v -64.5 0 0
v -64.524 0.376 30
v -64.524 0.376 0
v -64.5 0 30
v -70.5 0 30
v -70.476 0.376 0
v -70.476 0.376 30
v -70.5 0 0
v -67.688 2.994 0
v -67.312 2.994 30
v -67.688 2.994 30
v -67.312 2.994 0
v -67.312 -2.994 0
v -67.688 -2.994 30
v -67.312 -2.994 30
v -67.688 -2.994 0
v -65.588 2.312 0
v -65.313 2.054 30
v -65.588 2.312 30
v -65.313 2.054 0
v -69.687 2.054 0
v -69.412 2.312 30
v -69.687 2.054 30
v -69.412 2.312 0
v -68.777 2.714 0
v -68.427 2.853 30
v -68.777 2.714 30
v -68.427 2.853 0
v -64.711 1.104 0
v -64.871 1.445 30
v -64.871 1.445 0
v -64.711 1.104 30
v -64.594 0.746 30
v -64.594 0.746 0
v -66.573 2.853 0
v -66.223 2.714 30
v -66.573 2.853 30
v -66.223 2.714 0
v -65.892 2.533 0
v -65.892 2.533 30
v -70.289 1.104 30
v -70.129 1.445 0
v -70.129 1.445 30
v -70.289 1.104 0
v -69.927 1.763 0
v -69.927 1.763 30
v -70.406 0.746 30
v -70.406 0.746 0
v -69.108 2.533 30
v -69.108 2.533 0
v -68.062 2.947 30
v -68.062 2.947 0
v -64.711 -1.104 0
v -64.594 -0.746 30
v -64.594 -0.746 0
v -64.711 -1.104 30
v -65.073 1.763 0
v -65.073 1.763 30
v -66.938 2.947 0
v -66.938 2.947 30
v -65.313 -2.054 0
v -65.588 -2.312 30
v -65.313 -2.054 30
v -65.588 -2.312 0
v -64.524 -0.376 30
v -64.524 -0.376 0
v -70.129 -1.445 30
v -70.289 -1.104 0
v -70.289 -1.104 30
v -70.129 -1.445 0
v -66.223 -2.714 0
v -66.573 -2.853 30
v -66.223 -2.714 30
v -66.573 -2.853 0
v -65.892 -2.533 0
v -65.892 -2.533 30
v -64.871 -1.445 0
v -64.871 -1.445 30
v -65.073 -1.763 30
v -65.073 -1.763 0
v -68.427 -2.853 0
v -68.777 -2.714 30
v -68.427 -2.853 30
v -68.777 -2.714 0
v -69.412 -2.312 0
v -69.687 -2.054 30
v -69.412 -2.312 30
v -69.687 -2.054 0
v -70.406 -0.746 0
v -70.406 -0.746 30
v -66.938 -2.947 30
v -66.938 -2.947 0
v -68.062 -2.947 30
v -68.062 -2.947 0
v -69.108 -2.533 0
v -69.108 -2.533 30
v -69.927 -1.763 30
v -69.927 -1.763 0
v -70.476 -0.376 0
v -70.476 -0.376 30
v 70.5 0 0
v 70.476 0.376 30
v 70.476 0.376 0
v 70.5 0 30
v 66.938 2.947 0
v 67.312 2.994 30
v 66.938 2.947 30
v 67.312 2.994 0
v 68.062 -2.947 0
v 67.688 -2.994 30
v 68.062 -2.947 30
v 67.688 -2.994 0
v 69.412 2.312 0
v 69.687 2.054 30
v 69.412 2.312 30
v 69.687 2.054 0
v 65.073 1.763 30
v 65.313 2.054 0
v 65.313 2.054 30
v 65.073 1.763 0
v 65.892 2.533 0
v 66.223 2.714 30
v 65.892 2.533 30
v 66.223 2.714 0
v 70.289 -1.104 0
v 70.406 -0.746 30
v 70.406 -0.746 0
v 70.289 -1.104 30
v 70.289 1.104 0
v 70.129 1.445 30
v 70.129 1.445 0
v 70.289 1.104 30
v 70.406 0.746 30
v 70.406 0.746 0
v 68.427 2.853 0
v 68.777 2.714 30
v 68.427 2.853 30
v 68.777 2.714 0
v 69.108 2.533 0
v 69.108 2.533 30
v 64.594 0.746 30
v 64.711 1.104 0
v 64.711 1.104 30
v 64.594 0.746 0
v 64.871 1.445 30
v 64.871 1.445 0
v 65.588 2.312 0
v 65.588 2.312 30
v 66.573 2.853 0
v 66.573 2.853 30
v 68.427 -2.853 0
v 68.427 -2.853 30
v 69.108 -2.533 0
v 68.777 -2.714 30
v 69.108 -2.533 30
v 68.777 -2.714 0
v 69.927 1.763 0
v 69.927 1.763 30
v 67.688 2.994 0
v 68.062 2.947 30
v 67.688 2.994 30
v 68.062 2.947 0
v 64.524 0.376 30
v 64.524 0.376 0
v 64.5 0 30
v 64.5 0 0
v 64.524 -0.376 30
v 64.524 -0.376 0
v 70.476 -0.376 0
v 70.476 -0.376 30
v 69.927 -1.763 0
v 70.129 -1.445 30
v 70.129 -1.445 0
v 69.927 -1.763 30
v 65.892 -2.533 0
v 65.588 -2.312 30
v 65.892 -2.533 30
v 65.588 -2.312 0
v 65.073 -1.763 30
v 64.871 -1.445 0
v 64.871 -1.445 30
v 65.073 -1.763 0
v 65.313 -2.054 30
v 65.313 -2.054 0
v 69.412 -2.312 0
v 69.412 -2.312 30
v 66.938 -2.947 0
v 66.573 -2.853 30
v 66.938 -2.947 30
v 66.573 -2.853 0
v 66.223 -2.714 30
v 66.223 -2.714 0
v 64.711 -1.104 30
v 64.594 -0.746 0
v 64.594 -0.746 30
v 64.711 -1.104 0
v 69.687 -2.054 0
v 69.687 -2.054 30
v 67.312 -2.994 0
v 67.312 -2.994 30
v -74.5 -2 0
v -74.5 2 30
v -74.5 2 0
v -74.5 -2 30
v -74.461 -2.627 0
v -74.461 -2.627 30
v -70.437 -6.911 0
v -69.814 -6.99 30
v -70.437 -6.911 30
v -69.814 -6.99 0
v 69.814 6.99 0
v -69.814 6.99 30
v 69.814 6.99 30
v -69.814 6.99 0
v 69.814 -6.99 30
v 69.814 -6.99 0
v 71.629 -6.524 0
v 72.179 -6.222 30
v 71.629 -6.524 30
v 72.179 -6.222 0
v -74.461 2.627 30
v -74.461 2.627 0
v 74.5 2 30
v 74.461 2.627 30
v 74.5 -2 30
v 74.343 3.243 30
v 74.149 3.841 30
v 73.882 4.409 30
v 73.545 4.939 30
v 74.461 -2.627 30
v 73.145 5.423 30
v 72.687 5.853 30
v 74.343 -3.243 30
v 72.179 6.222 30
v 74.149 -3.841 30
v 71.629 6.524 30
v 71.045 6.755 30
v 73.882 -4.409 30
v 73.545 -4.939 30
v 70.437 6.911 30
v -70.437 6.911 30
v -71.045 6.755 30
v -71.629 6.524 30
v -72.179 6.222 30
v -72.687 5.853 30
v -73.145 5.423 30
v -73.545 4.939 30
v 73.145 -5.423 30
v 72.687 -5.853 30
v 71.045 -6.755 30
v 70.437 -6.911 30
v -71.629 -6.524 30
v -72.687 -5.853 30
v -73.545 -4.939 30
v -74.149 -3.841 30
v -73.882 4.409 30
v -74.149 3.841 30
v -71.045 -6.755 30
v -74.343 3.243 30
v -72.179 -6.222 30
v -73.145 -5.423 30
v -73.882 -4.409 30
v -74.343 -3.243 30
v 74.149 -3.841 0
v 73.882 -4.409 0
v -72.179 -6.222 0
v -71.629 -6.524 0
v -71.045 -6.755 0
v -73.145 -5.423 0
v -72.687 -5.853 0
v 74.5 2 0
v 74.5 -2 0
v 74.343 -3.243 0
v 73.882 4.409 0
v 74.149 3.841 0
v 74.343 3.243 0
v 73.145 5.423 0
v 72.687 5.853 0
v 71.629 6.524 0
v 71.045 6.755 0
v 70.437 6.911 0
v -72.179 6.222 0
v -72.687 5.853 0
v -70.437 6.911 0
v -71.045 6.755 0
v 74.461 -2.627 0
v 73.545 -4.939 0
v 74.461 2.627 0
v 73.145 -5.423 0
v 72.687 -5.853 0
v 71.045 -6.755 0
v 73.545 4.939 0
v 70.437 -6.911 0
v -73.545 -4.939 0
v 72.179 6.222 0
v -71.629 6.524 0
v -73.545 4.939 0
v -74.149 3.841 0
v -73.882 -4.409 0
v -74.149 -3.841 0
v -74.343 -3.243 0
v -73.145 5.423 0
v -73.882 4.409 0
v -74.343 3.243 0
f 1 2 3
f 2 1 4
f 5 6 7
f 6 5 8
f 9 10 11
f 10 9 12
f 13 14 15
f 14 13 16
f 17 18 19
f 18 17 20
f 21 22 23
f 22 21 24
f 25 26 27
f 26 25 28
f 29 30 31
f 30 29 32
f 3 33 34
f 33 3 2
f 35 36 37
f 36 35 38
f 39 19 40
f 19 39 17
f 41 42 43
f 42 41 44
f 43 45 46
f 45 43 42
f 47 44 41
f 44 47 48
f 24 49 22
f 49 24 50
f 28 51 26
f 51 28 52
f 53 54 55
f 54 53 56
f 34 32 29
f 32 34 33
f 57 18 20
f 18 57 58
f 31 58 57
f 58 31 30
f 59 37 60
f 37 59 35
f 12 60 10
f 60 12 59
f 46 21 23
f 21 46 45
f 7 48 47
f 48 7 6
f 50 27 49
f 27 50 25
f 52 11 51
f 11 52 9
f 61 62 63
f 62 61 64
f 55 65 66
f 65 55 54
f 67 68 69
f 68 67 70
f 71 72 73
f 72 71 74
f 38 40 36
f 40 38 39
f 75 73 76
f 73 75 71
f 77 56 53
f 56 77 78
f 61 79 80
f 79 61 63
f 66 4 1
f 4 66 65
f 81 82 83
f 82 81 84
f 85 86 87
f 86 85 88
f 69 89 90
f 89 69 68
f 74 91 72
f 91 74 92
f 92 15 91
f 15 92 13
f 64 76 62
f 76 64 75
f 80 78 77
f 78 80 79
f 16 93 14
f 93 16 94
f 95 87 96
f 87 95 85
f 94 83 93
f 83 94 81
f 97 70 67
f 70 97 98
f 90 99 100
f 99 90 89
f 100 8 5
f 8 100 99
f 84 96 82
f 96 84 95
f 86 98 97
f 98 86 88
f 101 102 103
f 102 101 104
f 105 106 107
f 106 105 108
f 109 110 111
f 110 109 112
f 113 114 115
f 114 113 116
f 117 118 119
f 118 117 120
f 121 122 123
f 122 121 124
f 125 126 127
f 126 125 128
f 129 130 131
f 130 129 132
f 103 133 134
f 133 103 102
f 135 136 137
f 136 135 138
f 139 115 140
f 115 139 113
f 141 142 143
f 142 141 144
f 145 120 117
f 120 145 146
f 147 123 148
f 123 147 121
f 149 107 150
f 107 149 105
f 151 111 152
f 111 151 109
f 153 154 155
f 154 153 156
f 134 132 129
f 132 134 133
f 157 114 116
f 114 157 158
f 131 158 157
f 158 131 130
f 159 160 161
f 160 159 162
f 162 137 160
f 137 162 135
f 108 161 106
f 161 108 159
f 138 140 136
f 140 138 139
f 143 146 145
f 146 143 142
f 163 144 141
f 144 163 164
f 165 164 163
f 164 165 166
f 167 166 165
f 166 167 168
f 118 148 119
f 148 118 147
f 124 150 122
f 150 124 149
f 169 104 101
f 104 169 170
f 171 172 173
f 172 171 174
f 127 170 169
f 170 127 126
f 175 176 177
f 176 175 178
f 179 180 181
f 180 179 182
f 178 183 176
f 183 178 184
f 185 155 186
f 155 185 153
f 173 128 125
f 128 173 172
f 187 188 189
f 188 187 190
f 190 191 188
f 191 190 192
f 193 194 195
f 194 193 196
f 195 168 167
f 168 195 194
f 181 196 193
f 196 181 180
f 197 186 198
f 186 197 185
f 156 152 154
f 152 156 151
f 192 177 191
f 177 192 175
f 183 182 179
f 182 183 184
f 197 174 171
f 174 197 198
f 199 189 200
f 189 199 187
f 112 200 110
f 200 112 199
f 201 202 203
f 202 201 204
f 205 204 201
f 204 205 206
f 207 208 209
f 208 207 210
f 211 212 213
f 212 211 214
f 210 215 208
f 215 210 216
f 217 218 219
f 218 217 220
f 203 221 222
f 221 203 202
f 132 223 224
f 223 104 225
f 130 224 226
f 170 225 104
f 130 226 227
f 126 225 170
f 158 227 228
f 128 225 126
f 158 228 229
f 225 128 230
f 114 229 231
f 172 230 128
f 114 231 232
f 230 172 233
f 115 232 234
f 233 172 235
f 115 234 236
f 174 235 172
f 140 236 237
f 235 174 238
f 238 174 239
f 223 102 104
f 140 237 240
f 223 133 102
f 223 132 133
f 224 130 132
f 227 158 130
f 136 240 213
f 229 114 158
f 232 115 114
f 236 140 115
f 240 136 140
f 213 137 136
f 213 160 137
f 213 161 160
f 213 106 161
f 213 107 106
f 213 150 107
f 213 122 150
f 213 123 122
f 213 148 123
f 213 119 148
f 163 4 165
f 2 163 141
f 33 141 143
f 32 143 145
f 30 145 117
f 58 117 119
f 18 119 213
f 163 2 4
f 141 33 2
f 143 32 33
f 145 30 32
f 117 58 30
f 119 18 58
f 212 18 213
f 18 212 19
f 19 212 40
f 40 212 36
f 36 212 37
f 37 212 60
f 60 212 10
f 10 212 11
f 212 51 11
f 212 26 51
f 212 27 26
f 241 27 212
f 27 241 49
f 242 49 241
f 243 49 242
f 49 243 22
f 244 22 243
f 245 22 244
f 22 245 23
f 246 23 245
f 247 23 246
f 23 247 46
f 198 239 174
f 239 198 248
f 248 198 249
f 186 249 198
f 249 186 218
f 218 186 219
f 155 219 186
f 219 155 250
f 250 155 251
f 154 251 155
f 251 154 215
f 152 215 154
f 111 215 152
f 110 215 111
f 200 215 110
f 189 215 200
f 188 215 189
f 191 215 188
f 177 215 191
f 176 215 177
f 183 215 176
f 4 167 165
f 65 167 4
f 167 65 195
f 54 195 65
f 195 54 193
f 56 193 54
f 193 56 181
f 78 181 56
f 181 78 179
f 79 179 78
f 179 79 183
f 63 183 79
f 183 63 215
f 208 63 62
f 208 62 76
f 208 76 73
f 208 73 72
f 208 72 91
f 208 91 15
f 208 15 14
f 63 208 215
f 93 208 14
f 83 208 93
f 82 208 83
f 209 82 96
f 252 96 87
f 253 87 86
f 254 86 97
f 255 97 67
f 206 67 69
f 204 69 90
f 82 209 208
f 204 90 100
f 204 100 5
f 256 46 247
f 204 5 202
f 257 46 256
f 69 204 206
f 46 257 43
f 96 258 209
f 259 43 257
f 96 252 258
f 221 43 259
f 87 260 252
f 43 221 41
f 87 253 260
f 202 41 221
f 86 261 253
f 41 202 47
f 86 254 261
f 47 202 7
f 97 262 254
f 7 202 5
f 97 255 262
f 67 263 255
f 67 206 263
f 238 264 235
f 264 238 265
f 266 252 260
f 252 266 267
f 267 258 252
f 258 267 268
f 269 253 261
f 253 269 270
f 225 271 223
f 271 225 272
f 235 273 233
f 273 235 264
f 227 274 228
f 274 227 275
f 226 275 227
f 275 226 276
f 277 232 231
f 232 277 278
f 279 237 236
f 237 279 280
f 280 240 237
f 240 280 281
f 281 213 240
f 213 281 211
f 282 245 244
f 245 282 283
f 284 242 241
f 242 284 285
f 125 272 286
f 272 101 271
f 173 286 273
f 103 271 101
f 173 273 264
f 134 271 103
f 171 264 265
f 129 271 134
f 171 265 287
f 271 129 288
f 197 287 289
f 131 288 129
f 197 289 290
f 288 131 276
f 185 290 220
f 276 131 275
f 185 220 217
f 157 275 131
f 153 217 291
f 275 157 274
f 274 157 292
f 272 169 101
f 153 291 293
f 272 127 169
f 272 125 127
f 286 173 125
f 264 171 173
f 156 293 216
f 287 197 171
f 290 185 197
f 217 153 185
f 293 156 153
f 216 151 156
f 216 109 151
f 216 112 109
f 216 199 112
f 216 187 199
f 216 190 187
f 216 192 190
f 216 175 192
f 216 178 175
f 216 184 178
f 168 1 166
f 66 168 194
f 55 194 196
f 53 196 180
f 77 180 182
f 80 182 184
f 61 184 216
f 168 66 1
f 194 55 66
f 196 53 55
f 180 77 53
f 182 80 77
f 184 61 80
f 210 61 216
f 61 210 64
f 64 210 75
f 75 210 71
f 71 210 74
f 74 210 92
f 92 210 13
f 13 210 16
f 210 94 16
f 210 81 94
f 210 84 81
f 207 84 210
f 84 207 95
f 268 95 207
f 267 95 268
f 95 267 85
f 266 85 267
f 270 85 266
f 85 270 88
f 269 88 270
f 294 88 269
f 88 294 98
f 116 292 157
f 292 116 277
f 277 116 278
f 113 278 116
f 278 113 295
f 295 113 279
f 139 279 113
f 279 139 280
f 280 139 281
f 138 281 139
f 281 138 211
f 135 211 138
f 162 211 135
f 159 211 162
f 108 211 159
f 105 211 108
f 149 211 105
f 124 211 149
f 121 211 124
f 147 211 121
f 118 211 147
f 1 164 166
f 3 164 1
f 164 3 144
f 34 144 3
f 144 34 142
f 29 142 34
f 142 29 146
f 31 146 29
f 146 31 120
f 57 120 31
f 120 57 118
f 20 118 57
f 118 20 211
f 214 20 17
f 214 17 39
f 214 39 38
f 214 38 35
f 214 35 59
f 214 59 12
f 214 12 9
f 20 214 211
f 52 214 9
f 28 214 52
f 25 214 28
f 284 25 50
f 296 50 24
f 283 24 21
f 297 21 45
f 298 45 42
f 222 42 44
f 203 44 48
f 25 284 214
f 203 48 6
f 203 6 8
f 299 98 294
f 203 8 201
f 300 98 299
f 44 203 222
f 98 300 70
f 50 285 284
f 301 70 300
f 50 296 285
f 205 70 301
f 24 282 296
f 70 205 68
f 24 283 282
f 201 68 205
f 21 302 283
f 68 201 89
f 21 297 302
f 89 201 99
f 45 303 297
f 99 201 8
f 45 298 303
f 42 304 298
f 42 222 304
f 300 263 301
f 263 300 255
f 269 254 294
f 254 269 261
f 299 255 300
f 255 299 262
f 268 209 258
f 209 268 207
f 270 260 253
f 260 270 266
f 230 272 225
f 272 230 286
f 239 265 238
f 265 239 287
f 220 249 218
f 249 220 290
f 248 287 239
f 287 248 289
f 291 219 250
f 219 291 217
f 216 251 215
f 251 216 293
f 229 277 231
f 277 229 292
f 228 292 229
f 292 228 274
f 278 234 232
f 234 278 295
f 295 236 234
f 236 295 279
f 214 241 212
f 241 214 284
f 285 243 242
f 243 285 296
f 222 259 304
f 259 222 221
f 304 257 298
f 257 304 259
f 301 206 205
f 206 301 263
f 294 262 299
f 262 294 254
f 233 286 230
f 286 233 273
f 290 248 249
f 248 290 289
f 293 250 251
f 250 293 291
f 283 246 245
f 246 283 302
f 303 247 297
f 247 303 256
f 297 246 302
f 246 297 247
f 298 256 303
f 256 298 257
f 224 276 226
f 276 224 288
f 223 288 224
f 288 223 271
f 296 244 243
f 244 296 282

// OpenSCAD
$fn = 50;


difference() {
	union() {
		hull() {
			translate(v = [-69.5000000000, 2.0000000000, 0]) {
				cylinder(h = 30, r = 5);
			}
			translate(v = [69.5000000000, 2.0000000000, 0]) {
				cylinder(h = 30, r = 5);
			}
			translate(v = [-69.5000000000, -2.0000000000, 0]) {
				cylinder(h = 30, r = 5);
			}
			translate(v = [69.5000000000, -2.0000000000, 0]) {
				cylinder(h = 30, r = 5);
			}
		}
	}
	union() {
		translate(v = [-67.5000000000, 0.0000000000, -100.0000000000]) {
			cylinder(h = 200, r = 3.0000000000);
		}
		translate(v = [-67.5000000000, 0.0000000000, -100.0000000000]) {
			cylinder(h = 200, r = 3.0000000000);
		}
		translate(v = [67.5000000000, 0.0000000000, -100.0000000000]) {
			cylinder(h = 200, r = 3.0000000000);
		}
		translate(v = [67.5000000000, 0.0000000000, -100.0000000000]) {
			cylinder(h = 200, r = 3.0000000000);
		}
	}
}
